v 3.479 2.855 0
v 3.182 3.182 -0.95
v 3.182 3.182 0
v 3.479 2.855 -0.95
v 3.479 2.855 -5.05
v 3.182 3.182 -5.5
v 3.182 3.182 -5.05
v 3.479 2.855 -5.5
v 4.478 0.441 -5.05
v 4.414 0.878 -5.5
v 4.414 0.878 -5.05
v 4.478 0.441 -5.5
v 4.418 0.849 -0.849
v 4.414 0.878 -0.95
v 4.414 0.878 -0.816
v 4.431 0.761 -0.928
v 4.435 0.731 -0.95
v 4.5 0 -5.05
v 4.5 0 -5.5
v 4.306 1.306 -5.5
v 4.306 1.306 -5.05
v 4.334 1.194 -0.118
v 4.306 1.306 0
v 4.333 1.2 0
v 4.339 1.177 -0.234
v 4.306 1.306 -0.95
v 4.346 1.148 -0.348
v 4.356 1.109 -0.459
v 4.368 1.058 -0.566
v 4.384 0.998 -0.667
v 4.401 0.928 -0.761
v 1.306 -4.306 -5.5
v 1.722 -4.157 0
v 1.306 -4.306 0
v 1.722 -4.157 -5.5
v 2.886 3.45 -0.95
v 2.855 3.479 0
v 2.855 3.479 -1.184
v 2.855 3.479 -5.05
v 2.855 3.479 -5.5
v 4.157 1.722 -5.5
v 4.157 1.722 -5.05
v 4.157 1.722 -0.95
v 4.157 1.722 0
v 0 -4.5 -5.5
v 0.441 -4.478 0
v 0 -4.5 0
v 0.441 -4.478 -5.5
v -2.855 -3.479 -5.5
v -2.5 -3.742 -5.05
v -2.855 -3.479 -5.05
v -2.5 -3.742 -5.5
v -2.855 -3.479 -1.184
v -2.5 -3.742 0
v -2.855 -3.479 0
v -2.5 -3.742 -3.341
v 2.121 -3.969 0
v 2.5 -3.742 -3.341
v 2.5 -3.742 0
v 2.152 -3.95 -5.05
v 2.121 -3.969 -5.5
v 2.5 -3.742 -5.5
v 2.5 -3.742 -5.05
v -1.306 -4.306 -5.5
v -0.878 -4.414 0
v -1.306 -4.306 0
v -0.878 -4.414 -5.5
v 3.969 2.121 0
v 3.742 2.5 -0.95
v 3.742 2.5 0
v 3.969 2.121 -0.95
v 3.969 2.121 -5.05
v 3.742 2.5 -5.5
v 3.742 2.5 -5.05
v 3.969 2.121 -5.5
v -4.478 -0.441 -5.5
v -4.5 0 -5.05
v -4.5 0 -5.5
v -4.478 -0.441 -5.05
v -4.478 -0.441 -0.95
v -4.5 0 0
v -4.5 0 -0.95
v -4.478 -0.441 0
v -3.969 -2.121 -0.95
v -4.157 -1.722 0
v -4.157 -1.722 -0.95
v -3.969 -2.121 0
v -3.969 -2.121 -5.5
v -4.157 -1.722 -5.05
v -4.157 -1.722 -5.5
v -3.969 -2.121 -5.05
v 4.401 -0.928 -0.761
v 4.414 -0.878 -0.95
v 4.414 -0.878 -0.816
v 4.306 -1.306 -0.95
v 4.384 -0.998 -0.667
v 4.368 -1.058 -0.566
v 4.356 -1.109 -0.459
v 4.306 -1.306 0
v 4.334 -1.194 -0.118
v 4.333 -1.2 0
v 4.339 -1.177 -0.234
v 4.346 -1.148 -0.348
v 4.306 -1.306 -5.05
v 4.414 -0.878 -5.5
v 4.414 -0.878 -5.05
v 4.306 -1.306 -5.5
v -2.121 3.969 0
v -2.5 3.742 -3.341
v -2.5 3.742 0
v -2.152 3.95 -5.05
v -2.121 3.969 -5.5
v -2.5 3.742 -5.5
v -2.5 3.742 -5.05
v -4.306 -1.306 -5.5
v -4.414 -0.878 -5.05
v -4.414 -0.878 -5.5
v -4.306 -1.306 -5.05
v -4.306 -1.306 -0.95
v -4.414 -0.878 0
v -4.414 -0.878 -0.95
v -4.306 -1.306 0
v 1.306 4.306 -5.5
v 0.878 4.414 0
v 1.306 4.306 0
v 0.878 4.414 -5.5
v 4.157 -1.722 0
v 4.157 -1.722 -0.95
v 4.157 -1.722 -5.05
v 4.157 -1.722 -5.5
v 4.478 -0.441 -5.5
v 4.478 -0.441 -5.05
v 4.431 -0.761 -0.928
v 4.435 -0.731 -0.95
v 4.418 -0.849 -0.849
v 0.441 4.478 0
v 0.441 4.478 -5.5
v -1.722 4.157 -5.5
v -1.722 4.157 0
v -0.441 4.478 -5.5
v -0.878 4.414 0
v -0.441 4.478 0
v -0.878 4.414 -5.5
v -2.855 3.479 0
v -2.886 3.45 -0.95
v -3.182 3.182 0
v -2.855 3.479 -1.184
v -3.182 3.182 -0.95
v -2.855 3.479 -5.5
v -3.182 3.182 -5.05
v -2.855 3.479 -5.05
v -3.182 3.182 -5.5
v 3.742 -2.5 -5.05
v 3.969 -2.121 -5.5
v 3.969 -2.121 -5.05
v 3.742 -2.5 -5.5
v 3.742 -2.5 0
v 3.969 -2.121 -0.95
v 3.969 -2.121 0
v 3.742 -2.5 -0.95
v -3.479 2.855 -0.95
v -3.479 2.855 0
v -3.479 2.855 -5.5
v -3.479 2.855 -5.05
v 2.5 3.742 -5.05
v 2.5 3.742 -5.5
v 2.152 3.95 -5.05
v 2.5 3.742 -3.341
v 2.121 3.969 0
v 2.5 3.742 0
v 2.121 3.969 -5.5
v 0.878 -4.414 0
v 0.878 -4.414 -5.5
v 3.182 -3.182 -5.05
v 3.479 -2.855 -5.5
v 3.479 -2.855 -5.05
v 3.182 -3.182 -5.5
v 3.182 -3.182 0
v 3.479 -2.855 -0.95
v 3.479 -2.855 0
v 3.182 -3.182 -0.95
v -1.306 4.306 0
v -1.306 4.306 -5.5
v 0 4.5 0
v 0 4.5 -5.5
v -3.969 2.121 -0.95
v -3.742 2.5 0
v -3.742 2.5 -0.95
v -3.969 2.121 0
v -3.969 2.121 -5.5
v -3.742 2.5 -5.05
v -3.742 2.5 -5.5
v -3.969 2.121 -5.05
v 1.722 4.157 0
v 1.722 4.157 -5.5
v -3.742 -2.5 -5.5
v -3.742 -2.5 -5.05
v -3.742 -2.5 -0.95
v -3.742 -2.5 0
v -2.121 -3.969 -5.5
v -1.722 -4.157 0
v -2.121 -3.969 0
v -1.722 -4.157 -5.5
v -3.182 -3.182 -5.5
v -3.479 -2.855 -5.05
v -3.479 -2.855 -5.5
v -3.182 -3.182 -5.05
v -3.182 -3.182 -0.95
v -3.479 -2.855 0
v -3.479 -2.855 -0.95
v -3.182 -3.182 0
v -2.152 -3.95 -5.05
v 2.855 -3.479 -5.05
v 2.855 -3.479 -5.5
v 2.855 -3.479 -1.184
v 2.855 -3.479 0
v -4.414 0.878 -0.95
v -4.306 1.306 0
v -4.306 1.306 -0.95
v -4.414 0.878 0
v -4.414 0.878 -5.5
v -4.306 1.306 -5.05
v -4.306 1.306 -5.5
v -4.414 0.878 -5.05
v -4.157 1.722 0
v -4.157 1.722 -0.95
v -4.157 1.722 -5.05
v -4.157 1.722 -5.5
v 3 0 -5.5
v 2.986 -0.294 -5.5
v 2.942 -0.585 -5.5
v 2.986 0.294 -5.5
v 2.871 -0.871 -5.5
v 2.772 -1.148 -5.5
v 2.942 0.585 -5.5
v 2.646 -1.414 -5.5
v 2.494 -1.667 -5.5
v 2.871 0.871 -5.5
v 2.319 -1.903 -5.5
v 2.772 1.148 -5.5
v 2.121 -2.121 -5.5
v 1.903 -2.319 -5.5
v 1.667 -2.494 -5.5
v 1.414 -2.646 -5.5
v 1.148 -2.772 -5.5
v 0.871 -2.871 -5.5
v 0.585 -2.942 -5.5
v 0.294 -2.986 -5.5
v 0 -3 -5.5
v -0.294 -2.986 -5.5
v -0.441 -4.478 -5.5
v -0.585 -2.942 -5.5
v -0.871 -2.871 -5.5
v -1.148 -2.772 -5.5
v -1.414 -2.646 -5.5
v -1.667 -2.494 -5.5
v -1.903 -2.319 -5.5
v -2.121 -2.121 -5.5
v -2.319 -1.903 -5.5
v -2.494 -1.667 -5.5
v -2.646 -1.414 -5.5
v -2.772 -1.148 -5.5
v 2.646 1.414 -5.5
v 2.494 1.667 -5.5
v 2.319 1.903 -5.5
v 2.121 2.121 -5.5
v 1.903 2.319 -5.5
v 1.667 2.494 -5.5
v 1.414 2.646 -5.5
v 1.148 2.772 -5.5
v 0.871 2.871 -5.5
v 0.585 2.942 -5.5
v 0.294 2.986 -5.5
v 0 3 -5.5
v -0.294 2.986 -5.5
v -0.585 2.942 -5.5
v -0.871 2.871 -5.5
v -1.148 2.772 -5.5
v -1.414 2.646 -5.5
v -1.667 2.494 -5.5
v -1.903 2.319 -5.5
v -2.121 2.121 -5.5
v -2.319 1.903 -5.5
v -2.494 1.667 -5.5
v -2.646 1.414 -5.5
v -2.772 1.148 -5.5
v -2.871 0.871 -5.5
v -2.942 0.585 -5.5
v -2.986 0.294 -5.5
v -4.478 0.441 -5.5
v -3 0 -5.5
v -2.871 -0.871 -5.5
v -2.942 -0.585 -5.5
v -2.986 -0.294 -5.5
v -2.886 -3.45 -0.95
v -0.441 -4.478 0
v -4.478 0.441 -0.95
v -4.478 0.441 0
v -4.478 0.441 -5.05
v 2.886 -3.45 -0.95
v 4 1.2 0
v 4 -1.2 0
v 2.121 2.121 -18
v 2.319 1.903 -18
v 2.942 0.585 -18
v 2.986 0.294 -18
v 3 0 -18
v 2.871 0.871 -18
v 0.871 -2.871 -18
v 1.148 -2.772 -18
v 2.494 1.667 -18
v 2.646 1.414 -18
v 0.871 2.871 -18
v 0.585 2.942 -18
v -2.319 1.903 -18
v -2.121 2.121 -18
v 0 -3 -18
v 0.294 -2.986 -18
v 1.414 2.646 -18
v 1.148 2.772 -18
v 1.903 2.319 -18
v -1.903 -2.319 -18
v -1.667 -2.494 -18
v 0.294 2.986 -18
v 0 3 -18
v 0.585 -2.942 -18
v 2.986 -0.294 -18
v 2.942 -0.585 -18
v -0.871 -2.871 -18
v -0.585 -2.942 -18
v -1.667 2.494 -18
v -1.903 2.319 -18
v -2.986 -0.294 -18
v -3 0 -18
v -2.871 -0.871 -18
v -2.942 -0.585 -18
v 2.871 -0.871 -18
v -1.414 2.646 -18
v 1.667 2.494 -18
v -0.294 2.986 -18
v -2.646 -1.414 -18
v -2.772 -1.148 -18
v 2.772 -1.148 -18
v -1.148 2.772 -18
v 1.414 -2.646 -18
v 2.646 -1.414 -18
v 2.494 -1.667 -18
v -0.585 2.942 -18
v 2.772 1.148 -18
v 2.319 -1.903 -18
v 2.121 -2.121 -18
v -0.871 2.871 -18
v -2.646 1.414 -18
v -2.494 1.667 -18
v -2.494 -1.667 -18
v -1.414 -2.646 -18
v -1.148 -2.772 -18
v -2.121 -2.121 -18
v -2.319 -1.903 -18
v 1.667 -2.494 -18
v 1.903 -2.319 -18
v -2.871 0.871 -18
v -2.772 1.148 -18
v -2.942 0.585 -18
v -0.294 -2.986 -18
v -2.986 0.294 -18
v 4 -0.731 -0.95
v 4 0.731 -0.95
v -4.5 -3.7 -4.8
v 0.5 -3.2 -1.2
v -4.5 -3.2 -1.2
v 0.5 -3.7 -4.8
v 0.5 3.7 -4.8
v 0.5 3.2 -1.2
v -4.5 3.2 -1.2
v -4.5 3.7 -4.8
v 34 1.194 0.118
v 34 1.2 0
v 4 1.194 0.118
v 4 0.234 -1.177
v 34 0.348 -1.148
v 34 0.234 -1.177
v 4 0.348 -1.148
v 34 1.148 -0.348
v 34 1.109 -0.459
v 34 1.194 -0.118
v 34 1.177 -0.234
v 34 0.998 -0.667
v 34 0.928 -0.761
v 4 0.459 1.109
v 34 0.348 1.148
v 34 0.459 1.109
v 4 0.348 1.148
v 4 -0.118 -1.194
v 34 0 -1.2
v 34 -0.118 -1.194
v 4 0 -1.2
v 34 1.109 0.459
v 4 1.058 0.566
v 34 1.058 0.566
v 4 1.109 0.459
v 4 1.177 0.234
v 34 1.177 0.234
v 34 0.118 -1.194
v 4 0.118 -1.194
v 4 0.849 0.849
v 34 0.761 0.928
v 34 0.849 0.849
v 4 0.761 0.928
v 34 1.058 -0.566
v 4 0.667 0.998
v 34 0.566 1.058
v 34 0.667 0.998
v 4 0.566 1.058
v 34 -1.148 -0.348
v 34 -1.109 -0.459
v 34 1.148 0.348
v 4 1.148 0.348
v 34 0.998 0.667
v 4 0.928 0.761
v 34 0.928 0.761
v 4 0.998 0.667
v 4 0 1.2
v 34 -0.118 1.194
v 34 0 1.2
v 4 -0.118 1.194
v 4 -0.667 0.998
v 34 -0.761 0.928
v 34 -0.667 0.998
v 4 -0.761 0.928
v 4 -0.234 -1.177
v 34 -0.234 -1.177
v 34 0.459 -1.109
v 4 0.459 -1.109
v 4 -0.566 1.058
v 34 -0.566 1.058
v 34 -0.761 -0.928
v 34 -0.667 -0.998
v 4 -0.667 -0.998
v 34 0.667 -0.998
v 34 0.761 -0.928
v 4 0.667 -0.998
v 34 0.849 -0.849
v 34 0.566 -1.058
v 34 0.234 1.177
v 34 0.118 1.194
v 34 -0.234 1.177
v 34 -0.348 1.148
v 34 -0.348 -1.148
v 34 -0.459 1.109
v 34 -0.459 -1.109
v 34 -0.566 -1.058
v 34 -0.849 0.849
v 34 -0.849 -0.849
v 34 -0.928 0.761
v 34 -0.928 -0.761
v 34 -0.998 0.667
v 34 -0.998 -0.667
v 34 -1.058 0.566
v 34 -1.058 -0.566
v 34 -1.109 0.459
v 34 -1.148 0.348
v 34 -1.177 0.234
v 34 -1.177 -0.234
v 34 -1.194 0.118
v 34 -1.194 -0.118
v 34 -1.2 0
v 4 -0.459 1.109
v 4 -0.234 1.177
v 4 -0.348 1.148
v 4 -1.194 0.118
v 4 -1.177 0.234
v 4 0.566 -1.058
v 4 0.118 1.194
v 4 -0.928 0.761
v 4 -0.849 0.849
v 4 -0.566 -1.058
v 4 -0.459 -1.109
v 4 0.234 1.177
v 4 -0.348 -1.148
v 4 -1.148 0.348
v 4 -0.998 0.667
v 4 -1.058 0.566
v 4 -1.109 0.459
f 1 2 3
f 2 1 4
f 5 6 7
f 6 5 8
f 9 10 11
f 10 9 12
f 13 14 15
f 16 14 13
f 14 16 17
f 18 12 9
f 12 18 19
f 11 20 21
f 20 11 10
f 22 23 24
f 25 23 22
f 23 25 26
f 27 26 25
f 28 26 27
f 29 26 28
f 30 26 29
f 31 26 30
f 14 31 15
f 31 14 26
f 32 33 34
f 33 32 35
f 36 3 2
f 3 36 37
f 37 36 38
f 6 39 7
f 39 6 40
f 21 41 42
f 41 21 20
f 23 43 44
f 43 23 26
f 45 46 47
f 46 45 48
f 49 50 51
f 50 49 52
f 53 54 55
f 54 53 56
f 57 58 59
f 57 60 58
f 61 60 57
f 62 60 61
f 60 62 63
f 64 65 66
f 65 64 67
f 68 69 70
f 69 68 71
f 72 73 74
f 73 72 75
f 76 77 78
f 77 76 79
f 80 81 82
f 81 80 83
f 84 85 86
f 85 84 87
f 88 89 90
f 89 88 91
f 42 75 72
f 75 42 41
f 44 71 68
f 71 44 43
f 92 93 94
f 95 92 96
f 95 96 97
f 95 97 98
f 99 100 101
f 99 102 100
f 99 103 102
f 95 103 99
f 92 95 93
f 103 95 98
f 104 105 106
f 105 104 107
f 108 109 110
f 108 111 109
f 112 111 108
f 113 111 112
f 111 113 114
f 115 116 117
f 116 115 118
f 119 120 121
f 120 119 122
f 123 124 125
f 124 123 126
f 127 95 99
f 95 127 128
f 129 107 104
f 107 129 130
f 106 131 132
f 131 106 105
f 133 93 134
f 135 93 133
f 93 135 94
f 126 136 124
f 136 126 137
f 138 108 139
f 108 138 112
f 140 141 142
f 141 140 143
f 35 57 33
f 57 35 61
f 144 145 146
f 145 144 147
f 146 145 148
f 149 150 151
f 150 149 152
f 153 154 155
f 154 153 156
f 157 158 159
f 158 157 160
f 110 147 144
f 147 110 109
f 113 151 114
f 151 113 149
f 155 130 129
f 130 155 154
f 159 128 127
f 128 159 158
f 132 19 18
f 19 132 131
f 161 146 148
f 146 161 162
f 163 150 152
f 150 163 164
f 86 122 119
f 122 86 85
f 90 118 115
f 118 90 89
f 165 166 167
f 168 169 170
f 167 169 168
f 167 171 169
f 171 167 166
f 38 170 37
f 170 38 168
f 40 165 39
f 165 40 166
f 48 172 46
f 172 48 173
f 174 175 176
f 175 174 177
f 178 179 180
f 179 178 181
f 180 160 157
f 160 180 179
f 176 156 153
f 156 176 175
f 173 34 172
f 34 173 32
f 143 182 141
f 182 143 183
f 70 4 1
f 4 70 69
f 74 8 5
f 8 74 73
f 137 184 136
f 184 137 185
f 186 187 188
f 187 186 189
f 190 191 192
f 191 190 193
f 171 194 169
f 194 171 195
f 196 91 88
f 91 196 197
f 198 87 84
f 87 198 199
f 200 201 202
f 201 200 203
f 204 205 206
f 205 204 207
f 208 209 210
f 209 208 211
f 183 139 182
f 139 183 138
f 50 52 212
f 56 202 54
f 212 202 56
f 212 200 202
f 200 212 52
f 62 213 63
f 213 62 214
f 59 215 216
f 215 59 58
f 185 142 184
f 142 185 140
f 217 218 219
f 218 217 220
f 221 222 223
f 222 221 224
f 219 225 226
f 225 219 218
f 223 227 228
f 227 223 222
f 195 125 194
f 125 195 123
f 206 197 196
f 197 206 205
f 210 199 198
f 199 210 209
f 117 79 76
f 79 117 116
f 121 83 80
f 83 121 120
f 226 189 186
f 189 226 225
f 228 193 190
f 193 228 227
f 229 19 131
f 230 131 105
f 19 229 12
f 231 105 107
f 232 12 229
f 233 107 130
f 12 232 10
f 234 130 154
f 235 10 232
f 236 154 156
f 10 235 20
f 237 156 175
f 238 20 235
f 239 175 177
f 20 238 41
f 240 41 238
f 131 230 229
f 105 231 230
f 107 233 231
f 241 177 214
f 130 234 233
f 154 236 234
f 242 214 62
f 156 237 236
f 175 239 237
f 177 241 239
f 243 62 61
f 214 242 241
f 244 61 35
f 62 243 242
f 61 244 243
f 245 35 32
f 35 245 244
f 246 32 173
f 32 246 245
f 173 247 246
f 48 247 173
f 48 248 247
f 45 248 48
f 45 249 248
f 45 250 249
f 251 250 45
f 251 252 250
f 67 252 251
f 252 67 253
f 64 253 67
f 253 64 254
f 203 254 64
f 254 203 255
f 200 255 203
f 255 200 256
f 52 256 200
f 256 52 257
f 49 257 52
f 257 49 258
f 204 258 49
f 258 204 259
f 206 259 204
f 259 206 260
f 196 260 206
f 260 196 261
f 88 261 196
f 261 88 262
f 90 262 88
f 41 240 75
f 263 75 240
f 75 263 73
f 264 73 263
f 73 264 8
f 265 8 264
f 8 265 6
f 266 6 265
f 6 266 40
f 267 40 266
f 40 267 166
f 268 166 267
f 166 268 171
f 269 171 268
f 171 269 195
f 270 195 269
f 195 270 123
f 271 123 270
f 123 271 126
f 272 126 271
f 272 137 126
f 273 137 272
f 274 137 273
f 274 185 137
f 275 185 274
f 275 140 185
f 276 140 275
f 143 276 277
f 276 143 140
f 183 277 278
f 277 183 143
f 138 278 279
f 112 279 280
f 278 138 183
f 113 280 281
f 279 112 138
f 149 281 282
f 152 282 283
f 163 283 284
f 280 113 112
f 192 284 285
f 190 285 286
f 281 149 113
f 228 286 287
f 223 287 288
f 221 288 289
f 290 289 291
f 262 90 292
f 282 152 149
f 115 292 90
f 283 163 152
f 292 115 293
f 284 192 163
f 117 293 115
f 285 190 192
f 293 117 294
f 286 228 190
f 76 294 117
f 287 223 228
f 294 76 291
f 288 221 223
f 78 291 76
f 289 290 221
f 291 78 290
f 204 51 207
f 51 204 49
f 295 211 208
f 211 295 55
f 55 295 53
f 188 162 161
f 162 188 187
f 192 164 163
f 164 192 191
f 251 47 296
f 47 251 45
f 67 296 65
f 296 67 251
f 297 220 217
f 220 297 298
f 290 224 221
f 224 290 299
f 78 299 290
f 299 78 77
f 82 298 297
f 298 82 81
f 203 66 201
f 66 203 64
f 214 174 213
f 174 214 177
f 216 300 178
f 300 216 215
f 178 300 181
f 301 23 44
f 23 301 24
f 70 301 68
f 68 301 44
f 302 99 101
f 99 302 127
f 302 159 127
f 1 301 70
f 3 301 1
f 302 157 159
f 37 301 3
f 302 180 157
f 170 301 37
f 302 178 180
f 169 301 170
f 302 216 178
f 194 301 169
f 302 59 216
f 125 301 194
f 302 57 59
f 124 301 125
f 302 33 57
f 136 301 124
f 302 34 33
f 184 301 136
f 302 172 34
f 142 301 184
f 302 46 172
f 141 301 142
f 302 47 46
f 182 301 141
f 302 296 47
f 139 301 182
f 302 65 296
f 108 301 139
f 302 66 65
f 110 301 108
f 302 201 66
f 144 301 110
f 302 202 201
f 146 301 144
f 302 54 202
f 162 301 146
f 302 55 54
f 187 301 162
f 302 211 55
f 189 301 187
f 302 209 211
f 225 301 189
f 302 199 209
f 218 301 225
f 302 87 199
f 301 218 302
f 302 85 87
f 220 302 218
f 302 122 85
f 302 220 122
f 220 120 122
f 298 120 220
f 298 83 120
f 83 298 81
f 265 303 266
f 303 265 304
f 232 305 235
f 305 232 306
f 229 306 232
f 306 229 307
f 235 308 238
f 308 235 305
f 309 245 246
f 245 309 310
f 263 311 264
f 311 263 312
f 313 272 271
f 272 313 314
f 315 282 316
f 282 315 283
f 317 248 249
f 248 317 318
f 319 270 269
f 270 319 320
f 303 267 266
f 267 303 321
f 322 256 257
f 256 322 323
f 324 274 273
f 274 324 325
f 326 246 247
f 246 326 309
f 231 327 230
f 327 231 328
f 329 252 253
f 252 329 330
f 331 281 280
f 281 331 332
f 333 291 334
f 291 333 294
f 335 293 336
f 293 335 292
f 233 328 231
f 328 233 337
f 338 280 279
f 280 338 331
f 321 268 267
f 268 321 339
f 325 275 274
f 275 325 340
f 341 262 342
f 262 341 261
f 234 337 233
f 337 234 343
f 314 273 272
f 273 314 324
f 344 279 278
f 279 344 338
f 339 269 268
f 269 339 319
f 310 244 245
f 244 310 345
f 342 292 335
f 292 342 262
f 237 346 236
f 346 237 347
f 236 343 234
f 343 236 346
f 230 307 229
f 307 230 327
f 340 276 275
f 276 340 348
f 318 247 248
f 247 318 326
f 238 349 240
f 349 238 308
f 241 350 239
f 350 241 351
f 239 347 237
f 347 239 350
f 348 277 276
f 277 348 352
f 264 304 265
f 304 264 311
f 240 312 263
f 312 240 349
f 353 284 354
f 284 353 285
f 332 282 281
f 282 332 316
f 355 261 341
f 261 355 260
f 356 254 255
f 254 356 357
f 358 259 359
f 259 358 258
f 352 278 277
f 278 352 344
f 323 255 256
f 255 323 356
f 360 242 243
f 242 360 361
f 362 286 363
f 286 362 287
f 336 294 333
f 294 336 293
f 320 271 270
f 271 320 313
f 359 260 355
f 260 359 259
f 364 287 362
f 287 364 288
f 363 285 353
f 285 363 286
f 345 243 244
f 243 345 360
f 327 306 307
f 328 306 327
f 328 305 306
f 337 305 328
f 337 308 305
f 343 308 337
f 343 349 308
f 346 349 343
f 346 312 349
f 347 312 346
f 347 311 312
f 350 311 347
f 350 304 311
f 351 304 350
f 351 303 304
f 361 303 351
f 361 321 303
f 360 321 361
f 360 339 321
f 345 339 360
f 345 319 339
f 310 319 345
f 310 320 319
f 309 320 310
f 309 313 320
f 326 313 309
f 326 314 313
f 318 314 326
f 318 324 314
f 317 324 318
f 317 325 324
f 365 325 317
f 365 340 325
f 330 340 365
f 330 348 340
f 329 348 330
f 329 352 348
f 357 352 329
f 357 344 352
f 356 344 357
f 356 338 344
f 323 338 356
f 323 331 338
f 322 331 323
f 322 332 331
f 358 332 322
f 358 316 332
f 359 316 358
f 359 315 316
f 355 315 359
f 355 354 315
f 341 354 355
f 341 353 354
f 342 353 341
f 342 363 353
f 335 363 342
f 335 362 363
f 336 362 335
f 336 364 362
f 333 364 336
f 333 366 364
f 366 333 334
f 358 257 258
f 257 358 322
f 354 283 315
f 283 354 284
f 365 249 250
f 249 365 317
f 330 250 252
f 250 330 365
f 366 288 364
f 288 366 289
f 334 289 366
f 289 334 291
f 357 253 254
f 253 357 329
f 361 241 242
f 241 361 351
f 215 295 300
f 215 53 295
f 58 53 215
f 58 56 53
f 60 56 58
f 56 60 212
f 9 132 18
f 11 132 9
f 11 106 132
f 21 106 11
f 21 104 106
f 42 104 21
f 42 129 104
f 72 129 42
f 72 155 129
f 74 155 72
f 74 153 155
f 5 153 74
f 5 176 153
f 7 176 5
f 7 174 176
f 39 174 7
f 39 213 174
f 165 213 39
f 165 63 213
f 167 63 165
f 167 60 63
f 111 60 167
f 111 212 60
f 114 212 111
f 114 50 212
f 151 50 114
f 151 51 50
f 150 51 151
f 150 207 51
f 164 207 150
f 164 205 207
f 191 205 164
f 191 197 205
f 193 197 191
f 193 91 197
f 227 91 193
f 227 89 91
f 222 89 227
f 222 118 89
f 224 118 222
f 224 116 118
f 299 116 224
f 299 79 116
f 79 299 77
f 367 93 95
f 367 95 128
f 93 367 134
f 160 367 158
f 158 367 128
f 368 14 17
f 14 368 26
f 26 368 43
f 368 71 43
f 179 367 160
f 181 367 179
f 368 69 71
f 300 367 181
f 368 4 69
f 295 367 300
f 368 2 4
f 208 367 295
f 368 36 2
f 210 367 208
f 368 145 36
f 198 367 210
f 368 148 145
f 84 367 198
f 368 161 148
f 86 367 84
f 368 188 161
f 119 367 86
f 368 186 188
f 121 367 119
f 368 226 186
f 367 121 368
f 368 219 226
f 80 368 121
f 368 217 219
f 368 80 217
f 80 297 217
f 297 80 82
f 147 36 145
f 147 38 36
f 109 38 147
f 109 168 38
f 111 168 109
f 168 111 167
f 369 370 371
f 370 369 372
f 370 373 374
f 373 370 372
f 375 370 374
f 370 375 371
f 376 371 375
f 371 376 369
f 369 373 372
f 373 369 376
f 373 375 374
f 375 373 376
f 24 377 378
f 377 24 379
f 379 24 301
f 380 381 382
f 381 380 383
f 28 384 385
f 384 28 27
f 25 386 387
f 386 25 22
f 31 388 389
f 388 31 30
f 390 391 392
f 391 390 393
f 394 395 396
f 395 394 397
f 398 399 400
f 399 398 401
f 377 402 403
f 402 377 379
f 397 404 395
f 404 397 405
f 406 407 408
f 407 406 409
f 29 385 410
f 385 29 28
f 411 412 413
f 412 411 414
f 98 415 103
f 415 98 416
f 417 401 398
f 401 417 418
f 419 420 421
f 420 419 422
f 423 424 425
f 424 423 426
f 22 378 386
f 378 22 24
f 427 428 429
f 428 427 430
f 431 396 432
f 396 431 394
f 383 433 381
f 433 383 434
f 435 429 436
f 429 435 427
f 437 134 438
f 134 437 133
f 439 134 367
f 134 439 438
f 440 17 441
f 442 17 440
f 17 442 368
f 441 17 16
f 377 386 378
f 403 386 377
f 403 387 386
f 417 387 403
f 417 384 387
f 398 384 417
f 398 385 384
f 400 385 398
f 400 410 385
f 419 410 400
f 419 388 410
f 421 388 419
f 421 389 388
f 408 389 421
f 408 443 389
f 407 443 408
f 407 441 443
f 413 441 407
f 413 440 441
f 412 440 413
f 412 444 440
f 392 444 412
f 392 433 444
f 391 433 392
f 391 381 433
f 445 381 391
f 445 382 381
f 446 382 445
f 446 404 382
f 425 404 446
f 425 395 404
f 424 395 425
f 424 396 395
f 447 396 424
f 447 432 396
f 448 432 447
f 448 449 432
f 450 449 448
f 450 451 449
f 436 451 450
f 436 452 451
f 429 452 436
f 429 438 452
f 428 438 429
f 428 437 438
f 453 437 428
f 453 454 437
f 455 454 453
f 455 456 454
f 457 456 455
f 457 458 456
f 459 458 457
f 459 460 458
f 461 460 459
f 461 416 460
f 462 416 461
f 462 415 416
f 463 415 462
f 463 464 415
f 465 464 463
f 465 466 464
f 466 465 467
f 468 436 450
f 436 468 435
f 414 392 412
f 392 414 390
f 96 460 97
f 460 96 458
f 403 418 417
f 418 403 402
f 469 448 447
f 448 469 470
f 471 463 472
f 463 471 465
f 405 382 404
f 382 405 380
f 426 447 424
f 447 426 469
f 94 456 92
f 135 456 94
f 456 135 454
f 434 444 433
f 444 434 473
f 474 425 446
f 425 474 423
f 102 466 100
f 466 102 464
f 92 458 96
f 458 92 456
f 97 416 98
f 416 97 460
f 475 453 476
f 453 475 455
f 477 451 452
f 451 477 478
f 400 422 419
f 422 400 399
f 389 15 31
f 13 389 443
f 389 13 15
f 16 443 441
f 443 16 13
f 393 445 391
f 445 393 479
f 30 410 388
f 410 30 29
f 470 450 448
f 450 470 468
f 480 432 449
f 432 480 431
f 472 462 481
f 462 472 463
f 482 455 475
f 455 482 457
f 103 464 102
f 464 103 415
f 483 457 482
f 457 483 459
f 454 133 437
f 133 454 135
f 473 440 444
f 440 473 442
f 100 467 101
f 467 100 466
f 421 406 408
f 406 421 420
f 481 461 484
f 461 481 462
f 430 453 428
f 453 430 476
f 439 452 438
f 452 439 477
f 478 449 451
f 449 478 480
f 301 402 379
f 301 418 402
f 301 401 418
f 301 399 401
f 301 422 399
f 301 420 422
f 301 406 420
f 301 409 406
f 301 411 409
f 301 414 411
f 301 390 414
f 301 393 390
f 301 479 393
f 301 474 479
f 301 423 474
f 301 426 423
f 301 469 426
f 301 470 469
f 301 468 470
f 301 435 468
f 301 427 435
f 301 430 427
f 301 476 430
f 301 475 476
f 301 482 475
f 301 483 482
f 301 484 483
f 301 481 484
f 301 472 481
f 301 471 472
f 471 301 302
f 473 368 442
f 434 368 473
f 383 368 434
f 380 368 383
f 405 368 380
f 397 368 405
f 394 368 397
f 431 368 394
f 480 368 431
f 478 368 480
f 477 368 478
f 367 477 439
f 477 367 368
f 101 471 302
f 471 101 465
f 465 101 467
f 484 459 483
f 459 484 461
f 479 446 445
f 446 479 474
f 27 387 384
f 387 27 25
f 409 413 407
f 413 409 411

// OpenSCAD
// file: _common.scad
// Shared parameters for the five candidate PETG-strut + TPU-cable joint
// designs explored in `edison-trajectories/joint-design/`.
//
// Coordinate convention (per design): the PETG strut runs along +Z and the
// TPU cable runs along the global +X direction (so the joint plane is the
// X-Z plane). All units in mm. PETG is rendered orange, TPU dark cyan.
strut_d = 6.0;     // PETG strut diameter (matches t3-prism.scad)
cable_d = 2.4;     // TPU cable diameter (matches t3-prism.scad)
strut_l = 18.0;    // visible strut length to render
cable_l = 30.0;    // visible cable length on each side
$fn = 64;

PETG_RGB = [0.95, 0.55, 0.20];
TPU_RGB  = [0.10, 0.55, 0.55];

module petg() { color(PETG_RGB) children(); }
module tpu()  { color(TPU_RGB)  children(); }

// Strut as a vertical capsule along +Z, tip at z = 0, body extending to -strut_l.
module strut_body(length = strut_l, d = strut_d) {
    translate([0, 0, -length]) cylinder(h=length, d=d);
    sphere(d=d);
}

// Straight TPU cable along +X.
module cable_segment(length = cable_l, d = cable_d, x0 = 0) {
    translate([x0, 0, 0])
        rotate([0, 90, 0])
            cylinder(h=length, d=d);
}
// main file
// =============================================================================
// Design B — Co-printed dovetail / T-slot mechanical interlock (PRIMARY)
// =============================================================================
// PETG strut tip ends in a captive dovetail / T-slot socket; the TPU cable is
// terminated in a matching dovetail / T-head co-printed inside the socket.
// Per Edison ANALYSIS followup ce84ddf8 §4 geometry:
//   - Slot mouth width:        6.4 mm (in a ~7 mm node envelope)
//   - TPU head width (undercut): 7.4 mm (0.5 mm capture per side)
//   - Slot internal height:    3.6 mm
//   - Slot depth (along strut axis): 5.0 mm
//   - Dovetail flank angle:    25° (lower stress concentration than 90° T)
//   - Running clearance:       0.25 mm per side on non-load-bearing faces
// Strut runs along +Z; cable exits along +X. The PETG cap above the head
// (the "roof") is the print-in-place bridge that captures the TPU dovetail.
// =============================================================================
include <_common.scad>

slot_mouth   = 6.4;
slot_inner   = 7.4;
slot_height  = 3.6;
slot_depth   = 5.0;       // along strut axis (Z)
flank_deg    = 25;        // half-flank, measured from vertical wall
clear        = 0.25;      // running clearance on non-load-bearing faces
node_d       = 9.0;       // PETG socket outer diameter near tip

// Dovetail / T-head extruded along +X (X = depth into slot).
// The cross-section in (Y,Z) is wider at the bottom (slot_inner) than the
// top (slot_mouth) — that is the "captive" undercut.
module dovetail_xs(width_top, width_bot, height) {
    polygon(points = [
        [-width_top/2,  height/2],
        [ width_top/2,  height/2],
        [ width_bot/2, -height/2],
        [-width_bot/2, -height/2],
    ]);
}

module designB_petg() {
    difference() {
        union() {
            translate([0, 0, -slot_depth - 0.5])
                cylinder(h=slot_depth + 0.5, d=node_d);
            translate([0, 0, -strut_l])
                cylinder(h=strut_l - slot_depth, d=strut_d);
        }
        // Dovetail pocket — wide at the bottom (captive). Add `clear` per side
        // on the non-load-bearing faces.
        translate([-(node_d/2 + 0.1), 0, -slot_depth/2 - 0.5])
            rotate([90, 0, 90])
                linear_extrude(height = node_d + 0.2 + clear)
                    dovetail_xs(slot_mouth + 2*clear,
                                slot_inner + 2*clear,
                                slot_height + 2*clear);
    }
}

module designB_tpu() {
    // Head: dovetail cross-section extruded along the slot depth.
    translate([-node_d/2, 0, -slot_depth/2 - 0.5])
        rotate([90, 0, 90])
            linear_extrude(height = slot_depth)
                dovetail_xs(slot_mouth, slot_inner, slot_height);
    // Cable exits the slot mouth on the +X side
    translate([node_d/2 - 0.5, 0, 0]) rotate([0, 90, 0])
        cylinder(h=cable_l, d=cable_d);
}

module designB() {
    petg() designB_petg();
    tpu()  designB_tpu();
}

designB();
